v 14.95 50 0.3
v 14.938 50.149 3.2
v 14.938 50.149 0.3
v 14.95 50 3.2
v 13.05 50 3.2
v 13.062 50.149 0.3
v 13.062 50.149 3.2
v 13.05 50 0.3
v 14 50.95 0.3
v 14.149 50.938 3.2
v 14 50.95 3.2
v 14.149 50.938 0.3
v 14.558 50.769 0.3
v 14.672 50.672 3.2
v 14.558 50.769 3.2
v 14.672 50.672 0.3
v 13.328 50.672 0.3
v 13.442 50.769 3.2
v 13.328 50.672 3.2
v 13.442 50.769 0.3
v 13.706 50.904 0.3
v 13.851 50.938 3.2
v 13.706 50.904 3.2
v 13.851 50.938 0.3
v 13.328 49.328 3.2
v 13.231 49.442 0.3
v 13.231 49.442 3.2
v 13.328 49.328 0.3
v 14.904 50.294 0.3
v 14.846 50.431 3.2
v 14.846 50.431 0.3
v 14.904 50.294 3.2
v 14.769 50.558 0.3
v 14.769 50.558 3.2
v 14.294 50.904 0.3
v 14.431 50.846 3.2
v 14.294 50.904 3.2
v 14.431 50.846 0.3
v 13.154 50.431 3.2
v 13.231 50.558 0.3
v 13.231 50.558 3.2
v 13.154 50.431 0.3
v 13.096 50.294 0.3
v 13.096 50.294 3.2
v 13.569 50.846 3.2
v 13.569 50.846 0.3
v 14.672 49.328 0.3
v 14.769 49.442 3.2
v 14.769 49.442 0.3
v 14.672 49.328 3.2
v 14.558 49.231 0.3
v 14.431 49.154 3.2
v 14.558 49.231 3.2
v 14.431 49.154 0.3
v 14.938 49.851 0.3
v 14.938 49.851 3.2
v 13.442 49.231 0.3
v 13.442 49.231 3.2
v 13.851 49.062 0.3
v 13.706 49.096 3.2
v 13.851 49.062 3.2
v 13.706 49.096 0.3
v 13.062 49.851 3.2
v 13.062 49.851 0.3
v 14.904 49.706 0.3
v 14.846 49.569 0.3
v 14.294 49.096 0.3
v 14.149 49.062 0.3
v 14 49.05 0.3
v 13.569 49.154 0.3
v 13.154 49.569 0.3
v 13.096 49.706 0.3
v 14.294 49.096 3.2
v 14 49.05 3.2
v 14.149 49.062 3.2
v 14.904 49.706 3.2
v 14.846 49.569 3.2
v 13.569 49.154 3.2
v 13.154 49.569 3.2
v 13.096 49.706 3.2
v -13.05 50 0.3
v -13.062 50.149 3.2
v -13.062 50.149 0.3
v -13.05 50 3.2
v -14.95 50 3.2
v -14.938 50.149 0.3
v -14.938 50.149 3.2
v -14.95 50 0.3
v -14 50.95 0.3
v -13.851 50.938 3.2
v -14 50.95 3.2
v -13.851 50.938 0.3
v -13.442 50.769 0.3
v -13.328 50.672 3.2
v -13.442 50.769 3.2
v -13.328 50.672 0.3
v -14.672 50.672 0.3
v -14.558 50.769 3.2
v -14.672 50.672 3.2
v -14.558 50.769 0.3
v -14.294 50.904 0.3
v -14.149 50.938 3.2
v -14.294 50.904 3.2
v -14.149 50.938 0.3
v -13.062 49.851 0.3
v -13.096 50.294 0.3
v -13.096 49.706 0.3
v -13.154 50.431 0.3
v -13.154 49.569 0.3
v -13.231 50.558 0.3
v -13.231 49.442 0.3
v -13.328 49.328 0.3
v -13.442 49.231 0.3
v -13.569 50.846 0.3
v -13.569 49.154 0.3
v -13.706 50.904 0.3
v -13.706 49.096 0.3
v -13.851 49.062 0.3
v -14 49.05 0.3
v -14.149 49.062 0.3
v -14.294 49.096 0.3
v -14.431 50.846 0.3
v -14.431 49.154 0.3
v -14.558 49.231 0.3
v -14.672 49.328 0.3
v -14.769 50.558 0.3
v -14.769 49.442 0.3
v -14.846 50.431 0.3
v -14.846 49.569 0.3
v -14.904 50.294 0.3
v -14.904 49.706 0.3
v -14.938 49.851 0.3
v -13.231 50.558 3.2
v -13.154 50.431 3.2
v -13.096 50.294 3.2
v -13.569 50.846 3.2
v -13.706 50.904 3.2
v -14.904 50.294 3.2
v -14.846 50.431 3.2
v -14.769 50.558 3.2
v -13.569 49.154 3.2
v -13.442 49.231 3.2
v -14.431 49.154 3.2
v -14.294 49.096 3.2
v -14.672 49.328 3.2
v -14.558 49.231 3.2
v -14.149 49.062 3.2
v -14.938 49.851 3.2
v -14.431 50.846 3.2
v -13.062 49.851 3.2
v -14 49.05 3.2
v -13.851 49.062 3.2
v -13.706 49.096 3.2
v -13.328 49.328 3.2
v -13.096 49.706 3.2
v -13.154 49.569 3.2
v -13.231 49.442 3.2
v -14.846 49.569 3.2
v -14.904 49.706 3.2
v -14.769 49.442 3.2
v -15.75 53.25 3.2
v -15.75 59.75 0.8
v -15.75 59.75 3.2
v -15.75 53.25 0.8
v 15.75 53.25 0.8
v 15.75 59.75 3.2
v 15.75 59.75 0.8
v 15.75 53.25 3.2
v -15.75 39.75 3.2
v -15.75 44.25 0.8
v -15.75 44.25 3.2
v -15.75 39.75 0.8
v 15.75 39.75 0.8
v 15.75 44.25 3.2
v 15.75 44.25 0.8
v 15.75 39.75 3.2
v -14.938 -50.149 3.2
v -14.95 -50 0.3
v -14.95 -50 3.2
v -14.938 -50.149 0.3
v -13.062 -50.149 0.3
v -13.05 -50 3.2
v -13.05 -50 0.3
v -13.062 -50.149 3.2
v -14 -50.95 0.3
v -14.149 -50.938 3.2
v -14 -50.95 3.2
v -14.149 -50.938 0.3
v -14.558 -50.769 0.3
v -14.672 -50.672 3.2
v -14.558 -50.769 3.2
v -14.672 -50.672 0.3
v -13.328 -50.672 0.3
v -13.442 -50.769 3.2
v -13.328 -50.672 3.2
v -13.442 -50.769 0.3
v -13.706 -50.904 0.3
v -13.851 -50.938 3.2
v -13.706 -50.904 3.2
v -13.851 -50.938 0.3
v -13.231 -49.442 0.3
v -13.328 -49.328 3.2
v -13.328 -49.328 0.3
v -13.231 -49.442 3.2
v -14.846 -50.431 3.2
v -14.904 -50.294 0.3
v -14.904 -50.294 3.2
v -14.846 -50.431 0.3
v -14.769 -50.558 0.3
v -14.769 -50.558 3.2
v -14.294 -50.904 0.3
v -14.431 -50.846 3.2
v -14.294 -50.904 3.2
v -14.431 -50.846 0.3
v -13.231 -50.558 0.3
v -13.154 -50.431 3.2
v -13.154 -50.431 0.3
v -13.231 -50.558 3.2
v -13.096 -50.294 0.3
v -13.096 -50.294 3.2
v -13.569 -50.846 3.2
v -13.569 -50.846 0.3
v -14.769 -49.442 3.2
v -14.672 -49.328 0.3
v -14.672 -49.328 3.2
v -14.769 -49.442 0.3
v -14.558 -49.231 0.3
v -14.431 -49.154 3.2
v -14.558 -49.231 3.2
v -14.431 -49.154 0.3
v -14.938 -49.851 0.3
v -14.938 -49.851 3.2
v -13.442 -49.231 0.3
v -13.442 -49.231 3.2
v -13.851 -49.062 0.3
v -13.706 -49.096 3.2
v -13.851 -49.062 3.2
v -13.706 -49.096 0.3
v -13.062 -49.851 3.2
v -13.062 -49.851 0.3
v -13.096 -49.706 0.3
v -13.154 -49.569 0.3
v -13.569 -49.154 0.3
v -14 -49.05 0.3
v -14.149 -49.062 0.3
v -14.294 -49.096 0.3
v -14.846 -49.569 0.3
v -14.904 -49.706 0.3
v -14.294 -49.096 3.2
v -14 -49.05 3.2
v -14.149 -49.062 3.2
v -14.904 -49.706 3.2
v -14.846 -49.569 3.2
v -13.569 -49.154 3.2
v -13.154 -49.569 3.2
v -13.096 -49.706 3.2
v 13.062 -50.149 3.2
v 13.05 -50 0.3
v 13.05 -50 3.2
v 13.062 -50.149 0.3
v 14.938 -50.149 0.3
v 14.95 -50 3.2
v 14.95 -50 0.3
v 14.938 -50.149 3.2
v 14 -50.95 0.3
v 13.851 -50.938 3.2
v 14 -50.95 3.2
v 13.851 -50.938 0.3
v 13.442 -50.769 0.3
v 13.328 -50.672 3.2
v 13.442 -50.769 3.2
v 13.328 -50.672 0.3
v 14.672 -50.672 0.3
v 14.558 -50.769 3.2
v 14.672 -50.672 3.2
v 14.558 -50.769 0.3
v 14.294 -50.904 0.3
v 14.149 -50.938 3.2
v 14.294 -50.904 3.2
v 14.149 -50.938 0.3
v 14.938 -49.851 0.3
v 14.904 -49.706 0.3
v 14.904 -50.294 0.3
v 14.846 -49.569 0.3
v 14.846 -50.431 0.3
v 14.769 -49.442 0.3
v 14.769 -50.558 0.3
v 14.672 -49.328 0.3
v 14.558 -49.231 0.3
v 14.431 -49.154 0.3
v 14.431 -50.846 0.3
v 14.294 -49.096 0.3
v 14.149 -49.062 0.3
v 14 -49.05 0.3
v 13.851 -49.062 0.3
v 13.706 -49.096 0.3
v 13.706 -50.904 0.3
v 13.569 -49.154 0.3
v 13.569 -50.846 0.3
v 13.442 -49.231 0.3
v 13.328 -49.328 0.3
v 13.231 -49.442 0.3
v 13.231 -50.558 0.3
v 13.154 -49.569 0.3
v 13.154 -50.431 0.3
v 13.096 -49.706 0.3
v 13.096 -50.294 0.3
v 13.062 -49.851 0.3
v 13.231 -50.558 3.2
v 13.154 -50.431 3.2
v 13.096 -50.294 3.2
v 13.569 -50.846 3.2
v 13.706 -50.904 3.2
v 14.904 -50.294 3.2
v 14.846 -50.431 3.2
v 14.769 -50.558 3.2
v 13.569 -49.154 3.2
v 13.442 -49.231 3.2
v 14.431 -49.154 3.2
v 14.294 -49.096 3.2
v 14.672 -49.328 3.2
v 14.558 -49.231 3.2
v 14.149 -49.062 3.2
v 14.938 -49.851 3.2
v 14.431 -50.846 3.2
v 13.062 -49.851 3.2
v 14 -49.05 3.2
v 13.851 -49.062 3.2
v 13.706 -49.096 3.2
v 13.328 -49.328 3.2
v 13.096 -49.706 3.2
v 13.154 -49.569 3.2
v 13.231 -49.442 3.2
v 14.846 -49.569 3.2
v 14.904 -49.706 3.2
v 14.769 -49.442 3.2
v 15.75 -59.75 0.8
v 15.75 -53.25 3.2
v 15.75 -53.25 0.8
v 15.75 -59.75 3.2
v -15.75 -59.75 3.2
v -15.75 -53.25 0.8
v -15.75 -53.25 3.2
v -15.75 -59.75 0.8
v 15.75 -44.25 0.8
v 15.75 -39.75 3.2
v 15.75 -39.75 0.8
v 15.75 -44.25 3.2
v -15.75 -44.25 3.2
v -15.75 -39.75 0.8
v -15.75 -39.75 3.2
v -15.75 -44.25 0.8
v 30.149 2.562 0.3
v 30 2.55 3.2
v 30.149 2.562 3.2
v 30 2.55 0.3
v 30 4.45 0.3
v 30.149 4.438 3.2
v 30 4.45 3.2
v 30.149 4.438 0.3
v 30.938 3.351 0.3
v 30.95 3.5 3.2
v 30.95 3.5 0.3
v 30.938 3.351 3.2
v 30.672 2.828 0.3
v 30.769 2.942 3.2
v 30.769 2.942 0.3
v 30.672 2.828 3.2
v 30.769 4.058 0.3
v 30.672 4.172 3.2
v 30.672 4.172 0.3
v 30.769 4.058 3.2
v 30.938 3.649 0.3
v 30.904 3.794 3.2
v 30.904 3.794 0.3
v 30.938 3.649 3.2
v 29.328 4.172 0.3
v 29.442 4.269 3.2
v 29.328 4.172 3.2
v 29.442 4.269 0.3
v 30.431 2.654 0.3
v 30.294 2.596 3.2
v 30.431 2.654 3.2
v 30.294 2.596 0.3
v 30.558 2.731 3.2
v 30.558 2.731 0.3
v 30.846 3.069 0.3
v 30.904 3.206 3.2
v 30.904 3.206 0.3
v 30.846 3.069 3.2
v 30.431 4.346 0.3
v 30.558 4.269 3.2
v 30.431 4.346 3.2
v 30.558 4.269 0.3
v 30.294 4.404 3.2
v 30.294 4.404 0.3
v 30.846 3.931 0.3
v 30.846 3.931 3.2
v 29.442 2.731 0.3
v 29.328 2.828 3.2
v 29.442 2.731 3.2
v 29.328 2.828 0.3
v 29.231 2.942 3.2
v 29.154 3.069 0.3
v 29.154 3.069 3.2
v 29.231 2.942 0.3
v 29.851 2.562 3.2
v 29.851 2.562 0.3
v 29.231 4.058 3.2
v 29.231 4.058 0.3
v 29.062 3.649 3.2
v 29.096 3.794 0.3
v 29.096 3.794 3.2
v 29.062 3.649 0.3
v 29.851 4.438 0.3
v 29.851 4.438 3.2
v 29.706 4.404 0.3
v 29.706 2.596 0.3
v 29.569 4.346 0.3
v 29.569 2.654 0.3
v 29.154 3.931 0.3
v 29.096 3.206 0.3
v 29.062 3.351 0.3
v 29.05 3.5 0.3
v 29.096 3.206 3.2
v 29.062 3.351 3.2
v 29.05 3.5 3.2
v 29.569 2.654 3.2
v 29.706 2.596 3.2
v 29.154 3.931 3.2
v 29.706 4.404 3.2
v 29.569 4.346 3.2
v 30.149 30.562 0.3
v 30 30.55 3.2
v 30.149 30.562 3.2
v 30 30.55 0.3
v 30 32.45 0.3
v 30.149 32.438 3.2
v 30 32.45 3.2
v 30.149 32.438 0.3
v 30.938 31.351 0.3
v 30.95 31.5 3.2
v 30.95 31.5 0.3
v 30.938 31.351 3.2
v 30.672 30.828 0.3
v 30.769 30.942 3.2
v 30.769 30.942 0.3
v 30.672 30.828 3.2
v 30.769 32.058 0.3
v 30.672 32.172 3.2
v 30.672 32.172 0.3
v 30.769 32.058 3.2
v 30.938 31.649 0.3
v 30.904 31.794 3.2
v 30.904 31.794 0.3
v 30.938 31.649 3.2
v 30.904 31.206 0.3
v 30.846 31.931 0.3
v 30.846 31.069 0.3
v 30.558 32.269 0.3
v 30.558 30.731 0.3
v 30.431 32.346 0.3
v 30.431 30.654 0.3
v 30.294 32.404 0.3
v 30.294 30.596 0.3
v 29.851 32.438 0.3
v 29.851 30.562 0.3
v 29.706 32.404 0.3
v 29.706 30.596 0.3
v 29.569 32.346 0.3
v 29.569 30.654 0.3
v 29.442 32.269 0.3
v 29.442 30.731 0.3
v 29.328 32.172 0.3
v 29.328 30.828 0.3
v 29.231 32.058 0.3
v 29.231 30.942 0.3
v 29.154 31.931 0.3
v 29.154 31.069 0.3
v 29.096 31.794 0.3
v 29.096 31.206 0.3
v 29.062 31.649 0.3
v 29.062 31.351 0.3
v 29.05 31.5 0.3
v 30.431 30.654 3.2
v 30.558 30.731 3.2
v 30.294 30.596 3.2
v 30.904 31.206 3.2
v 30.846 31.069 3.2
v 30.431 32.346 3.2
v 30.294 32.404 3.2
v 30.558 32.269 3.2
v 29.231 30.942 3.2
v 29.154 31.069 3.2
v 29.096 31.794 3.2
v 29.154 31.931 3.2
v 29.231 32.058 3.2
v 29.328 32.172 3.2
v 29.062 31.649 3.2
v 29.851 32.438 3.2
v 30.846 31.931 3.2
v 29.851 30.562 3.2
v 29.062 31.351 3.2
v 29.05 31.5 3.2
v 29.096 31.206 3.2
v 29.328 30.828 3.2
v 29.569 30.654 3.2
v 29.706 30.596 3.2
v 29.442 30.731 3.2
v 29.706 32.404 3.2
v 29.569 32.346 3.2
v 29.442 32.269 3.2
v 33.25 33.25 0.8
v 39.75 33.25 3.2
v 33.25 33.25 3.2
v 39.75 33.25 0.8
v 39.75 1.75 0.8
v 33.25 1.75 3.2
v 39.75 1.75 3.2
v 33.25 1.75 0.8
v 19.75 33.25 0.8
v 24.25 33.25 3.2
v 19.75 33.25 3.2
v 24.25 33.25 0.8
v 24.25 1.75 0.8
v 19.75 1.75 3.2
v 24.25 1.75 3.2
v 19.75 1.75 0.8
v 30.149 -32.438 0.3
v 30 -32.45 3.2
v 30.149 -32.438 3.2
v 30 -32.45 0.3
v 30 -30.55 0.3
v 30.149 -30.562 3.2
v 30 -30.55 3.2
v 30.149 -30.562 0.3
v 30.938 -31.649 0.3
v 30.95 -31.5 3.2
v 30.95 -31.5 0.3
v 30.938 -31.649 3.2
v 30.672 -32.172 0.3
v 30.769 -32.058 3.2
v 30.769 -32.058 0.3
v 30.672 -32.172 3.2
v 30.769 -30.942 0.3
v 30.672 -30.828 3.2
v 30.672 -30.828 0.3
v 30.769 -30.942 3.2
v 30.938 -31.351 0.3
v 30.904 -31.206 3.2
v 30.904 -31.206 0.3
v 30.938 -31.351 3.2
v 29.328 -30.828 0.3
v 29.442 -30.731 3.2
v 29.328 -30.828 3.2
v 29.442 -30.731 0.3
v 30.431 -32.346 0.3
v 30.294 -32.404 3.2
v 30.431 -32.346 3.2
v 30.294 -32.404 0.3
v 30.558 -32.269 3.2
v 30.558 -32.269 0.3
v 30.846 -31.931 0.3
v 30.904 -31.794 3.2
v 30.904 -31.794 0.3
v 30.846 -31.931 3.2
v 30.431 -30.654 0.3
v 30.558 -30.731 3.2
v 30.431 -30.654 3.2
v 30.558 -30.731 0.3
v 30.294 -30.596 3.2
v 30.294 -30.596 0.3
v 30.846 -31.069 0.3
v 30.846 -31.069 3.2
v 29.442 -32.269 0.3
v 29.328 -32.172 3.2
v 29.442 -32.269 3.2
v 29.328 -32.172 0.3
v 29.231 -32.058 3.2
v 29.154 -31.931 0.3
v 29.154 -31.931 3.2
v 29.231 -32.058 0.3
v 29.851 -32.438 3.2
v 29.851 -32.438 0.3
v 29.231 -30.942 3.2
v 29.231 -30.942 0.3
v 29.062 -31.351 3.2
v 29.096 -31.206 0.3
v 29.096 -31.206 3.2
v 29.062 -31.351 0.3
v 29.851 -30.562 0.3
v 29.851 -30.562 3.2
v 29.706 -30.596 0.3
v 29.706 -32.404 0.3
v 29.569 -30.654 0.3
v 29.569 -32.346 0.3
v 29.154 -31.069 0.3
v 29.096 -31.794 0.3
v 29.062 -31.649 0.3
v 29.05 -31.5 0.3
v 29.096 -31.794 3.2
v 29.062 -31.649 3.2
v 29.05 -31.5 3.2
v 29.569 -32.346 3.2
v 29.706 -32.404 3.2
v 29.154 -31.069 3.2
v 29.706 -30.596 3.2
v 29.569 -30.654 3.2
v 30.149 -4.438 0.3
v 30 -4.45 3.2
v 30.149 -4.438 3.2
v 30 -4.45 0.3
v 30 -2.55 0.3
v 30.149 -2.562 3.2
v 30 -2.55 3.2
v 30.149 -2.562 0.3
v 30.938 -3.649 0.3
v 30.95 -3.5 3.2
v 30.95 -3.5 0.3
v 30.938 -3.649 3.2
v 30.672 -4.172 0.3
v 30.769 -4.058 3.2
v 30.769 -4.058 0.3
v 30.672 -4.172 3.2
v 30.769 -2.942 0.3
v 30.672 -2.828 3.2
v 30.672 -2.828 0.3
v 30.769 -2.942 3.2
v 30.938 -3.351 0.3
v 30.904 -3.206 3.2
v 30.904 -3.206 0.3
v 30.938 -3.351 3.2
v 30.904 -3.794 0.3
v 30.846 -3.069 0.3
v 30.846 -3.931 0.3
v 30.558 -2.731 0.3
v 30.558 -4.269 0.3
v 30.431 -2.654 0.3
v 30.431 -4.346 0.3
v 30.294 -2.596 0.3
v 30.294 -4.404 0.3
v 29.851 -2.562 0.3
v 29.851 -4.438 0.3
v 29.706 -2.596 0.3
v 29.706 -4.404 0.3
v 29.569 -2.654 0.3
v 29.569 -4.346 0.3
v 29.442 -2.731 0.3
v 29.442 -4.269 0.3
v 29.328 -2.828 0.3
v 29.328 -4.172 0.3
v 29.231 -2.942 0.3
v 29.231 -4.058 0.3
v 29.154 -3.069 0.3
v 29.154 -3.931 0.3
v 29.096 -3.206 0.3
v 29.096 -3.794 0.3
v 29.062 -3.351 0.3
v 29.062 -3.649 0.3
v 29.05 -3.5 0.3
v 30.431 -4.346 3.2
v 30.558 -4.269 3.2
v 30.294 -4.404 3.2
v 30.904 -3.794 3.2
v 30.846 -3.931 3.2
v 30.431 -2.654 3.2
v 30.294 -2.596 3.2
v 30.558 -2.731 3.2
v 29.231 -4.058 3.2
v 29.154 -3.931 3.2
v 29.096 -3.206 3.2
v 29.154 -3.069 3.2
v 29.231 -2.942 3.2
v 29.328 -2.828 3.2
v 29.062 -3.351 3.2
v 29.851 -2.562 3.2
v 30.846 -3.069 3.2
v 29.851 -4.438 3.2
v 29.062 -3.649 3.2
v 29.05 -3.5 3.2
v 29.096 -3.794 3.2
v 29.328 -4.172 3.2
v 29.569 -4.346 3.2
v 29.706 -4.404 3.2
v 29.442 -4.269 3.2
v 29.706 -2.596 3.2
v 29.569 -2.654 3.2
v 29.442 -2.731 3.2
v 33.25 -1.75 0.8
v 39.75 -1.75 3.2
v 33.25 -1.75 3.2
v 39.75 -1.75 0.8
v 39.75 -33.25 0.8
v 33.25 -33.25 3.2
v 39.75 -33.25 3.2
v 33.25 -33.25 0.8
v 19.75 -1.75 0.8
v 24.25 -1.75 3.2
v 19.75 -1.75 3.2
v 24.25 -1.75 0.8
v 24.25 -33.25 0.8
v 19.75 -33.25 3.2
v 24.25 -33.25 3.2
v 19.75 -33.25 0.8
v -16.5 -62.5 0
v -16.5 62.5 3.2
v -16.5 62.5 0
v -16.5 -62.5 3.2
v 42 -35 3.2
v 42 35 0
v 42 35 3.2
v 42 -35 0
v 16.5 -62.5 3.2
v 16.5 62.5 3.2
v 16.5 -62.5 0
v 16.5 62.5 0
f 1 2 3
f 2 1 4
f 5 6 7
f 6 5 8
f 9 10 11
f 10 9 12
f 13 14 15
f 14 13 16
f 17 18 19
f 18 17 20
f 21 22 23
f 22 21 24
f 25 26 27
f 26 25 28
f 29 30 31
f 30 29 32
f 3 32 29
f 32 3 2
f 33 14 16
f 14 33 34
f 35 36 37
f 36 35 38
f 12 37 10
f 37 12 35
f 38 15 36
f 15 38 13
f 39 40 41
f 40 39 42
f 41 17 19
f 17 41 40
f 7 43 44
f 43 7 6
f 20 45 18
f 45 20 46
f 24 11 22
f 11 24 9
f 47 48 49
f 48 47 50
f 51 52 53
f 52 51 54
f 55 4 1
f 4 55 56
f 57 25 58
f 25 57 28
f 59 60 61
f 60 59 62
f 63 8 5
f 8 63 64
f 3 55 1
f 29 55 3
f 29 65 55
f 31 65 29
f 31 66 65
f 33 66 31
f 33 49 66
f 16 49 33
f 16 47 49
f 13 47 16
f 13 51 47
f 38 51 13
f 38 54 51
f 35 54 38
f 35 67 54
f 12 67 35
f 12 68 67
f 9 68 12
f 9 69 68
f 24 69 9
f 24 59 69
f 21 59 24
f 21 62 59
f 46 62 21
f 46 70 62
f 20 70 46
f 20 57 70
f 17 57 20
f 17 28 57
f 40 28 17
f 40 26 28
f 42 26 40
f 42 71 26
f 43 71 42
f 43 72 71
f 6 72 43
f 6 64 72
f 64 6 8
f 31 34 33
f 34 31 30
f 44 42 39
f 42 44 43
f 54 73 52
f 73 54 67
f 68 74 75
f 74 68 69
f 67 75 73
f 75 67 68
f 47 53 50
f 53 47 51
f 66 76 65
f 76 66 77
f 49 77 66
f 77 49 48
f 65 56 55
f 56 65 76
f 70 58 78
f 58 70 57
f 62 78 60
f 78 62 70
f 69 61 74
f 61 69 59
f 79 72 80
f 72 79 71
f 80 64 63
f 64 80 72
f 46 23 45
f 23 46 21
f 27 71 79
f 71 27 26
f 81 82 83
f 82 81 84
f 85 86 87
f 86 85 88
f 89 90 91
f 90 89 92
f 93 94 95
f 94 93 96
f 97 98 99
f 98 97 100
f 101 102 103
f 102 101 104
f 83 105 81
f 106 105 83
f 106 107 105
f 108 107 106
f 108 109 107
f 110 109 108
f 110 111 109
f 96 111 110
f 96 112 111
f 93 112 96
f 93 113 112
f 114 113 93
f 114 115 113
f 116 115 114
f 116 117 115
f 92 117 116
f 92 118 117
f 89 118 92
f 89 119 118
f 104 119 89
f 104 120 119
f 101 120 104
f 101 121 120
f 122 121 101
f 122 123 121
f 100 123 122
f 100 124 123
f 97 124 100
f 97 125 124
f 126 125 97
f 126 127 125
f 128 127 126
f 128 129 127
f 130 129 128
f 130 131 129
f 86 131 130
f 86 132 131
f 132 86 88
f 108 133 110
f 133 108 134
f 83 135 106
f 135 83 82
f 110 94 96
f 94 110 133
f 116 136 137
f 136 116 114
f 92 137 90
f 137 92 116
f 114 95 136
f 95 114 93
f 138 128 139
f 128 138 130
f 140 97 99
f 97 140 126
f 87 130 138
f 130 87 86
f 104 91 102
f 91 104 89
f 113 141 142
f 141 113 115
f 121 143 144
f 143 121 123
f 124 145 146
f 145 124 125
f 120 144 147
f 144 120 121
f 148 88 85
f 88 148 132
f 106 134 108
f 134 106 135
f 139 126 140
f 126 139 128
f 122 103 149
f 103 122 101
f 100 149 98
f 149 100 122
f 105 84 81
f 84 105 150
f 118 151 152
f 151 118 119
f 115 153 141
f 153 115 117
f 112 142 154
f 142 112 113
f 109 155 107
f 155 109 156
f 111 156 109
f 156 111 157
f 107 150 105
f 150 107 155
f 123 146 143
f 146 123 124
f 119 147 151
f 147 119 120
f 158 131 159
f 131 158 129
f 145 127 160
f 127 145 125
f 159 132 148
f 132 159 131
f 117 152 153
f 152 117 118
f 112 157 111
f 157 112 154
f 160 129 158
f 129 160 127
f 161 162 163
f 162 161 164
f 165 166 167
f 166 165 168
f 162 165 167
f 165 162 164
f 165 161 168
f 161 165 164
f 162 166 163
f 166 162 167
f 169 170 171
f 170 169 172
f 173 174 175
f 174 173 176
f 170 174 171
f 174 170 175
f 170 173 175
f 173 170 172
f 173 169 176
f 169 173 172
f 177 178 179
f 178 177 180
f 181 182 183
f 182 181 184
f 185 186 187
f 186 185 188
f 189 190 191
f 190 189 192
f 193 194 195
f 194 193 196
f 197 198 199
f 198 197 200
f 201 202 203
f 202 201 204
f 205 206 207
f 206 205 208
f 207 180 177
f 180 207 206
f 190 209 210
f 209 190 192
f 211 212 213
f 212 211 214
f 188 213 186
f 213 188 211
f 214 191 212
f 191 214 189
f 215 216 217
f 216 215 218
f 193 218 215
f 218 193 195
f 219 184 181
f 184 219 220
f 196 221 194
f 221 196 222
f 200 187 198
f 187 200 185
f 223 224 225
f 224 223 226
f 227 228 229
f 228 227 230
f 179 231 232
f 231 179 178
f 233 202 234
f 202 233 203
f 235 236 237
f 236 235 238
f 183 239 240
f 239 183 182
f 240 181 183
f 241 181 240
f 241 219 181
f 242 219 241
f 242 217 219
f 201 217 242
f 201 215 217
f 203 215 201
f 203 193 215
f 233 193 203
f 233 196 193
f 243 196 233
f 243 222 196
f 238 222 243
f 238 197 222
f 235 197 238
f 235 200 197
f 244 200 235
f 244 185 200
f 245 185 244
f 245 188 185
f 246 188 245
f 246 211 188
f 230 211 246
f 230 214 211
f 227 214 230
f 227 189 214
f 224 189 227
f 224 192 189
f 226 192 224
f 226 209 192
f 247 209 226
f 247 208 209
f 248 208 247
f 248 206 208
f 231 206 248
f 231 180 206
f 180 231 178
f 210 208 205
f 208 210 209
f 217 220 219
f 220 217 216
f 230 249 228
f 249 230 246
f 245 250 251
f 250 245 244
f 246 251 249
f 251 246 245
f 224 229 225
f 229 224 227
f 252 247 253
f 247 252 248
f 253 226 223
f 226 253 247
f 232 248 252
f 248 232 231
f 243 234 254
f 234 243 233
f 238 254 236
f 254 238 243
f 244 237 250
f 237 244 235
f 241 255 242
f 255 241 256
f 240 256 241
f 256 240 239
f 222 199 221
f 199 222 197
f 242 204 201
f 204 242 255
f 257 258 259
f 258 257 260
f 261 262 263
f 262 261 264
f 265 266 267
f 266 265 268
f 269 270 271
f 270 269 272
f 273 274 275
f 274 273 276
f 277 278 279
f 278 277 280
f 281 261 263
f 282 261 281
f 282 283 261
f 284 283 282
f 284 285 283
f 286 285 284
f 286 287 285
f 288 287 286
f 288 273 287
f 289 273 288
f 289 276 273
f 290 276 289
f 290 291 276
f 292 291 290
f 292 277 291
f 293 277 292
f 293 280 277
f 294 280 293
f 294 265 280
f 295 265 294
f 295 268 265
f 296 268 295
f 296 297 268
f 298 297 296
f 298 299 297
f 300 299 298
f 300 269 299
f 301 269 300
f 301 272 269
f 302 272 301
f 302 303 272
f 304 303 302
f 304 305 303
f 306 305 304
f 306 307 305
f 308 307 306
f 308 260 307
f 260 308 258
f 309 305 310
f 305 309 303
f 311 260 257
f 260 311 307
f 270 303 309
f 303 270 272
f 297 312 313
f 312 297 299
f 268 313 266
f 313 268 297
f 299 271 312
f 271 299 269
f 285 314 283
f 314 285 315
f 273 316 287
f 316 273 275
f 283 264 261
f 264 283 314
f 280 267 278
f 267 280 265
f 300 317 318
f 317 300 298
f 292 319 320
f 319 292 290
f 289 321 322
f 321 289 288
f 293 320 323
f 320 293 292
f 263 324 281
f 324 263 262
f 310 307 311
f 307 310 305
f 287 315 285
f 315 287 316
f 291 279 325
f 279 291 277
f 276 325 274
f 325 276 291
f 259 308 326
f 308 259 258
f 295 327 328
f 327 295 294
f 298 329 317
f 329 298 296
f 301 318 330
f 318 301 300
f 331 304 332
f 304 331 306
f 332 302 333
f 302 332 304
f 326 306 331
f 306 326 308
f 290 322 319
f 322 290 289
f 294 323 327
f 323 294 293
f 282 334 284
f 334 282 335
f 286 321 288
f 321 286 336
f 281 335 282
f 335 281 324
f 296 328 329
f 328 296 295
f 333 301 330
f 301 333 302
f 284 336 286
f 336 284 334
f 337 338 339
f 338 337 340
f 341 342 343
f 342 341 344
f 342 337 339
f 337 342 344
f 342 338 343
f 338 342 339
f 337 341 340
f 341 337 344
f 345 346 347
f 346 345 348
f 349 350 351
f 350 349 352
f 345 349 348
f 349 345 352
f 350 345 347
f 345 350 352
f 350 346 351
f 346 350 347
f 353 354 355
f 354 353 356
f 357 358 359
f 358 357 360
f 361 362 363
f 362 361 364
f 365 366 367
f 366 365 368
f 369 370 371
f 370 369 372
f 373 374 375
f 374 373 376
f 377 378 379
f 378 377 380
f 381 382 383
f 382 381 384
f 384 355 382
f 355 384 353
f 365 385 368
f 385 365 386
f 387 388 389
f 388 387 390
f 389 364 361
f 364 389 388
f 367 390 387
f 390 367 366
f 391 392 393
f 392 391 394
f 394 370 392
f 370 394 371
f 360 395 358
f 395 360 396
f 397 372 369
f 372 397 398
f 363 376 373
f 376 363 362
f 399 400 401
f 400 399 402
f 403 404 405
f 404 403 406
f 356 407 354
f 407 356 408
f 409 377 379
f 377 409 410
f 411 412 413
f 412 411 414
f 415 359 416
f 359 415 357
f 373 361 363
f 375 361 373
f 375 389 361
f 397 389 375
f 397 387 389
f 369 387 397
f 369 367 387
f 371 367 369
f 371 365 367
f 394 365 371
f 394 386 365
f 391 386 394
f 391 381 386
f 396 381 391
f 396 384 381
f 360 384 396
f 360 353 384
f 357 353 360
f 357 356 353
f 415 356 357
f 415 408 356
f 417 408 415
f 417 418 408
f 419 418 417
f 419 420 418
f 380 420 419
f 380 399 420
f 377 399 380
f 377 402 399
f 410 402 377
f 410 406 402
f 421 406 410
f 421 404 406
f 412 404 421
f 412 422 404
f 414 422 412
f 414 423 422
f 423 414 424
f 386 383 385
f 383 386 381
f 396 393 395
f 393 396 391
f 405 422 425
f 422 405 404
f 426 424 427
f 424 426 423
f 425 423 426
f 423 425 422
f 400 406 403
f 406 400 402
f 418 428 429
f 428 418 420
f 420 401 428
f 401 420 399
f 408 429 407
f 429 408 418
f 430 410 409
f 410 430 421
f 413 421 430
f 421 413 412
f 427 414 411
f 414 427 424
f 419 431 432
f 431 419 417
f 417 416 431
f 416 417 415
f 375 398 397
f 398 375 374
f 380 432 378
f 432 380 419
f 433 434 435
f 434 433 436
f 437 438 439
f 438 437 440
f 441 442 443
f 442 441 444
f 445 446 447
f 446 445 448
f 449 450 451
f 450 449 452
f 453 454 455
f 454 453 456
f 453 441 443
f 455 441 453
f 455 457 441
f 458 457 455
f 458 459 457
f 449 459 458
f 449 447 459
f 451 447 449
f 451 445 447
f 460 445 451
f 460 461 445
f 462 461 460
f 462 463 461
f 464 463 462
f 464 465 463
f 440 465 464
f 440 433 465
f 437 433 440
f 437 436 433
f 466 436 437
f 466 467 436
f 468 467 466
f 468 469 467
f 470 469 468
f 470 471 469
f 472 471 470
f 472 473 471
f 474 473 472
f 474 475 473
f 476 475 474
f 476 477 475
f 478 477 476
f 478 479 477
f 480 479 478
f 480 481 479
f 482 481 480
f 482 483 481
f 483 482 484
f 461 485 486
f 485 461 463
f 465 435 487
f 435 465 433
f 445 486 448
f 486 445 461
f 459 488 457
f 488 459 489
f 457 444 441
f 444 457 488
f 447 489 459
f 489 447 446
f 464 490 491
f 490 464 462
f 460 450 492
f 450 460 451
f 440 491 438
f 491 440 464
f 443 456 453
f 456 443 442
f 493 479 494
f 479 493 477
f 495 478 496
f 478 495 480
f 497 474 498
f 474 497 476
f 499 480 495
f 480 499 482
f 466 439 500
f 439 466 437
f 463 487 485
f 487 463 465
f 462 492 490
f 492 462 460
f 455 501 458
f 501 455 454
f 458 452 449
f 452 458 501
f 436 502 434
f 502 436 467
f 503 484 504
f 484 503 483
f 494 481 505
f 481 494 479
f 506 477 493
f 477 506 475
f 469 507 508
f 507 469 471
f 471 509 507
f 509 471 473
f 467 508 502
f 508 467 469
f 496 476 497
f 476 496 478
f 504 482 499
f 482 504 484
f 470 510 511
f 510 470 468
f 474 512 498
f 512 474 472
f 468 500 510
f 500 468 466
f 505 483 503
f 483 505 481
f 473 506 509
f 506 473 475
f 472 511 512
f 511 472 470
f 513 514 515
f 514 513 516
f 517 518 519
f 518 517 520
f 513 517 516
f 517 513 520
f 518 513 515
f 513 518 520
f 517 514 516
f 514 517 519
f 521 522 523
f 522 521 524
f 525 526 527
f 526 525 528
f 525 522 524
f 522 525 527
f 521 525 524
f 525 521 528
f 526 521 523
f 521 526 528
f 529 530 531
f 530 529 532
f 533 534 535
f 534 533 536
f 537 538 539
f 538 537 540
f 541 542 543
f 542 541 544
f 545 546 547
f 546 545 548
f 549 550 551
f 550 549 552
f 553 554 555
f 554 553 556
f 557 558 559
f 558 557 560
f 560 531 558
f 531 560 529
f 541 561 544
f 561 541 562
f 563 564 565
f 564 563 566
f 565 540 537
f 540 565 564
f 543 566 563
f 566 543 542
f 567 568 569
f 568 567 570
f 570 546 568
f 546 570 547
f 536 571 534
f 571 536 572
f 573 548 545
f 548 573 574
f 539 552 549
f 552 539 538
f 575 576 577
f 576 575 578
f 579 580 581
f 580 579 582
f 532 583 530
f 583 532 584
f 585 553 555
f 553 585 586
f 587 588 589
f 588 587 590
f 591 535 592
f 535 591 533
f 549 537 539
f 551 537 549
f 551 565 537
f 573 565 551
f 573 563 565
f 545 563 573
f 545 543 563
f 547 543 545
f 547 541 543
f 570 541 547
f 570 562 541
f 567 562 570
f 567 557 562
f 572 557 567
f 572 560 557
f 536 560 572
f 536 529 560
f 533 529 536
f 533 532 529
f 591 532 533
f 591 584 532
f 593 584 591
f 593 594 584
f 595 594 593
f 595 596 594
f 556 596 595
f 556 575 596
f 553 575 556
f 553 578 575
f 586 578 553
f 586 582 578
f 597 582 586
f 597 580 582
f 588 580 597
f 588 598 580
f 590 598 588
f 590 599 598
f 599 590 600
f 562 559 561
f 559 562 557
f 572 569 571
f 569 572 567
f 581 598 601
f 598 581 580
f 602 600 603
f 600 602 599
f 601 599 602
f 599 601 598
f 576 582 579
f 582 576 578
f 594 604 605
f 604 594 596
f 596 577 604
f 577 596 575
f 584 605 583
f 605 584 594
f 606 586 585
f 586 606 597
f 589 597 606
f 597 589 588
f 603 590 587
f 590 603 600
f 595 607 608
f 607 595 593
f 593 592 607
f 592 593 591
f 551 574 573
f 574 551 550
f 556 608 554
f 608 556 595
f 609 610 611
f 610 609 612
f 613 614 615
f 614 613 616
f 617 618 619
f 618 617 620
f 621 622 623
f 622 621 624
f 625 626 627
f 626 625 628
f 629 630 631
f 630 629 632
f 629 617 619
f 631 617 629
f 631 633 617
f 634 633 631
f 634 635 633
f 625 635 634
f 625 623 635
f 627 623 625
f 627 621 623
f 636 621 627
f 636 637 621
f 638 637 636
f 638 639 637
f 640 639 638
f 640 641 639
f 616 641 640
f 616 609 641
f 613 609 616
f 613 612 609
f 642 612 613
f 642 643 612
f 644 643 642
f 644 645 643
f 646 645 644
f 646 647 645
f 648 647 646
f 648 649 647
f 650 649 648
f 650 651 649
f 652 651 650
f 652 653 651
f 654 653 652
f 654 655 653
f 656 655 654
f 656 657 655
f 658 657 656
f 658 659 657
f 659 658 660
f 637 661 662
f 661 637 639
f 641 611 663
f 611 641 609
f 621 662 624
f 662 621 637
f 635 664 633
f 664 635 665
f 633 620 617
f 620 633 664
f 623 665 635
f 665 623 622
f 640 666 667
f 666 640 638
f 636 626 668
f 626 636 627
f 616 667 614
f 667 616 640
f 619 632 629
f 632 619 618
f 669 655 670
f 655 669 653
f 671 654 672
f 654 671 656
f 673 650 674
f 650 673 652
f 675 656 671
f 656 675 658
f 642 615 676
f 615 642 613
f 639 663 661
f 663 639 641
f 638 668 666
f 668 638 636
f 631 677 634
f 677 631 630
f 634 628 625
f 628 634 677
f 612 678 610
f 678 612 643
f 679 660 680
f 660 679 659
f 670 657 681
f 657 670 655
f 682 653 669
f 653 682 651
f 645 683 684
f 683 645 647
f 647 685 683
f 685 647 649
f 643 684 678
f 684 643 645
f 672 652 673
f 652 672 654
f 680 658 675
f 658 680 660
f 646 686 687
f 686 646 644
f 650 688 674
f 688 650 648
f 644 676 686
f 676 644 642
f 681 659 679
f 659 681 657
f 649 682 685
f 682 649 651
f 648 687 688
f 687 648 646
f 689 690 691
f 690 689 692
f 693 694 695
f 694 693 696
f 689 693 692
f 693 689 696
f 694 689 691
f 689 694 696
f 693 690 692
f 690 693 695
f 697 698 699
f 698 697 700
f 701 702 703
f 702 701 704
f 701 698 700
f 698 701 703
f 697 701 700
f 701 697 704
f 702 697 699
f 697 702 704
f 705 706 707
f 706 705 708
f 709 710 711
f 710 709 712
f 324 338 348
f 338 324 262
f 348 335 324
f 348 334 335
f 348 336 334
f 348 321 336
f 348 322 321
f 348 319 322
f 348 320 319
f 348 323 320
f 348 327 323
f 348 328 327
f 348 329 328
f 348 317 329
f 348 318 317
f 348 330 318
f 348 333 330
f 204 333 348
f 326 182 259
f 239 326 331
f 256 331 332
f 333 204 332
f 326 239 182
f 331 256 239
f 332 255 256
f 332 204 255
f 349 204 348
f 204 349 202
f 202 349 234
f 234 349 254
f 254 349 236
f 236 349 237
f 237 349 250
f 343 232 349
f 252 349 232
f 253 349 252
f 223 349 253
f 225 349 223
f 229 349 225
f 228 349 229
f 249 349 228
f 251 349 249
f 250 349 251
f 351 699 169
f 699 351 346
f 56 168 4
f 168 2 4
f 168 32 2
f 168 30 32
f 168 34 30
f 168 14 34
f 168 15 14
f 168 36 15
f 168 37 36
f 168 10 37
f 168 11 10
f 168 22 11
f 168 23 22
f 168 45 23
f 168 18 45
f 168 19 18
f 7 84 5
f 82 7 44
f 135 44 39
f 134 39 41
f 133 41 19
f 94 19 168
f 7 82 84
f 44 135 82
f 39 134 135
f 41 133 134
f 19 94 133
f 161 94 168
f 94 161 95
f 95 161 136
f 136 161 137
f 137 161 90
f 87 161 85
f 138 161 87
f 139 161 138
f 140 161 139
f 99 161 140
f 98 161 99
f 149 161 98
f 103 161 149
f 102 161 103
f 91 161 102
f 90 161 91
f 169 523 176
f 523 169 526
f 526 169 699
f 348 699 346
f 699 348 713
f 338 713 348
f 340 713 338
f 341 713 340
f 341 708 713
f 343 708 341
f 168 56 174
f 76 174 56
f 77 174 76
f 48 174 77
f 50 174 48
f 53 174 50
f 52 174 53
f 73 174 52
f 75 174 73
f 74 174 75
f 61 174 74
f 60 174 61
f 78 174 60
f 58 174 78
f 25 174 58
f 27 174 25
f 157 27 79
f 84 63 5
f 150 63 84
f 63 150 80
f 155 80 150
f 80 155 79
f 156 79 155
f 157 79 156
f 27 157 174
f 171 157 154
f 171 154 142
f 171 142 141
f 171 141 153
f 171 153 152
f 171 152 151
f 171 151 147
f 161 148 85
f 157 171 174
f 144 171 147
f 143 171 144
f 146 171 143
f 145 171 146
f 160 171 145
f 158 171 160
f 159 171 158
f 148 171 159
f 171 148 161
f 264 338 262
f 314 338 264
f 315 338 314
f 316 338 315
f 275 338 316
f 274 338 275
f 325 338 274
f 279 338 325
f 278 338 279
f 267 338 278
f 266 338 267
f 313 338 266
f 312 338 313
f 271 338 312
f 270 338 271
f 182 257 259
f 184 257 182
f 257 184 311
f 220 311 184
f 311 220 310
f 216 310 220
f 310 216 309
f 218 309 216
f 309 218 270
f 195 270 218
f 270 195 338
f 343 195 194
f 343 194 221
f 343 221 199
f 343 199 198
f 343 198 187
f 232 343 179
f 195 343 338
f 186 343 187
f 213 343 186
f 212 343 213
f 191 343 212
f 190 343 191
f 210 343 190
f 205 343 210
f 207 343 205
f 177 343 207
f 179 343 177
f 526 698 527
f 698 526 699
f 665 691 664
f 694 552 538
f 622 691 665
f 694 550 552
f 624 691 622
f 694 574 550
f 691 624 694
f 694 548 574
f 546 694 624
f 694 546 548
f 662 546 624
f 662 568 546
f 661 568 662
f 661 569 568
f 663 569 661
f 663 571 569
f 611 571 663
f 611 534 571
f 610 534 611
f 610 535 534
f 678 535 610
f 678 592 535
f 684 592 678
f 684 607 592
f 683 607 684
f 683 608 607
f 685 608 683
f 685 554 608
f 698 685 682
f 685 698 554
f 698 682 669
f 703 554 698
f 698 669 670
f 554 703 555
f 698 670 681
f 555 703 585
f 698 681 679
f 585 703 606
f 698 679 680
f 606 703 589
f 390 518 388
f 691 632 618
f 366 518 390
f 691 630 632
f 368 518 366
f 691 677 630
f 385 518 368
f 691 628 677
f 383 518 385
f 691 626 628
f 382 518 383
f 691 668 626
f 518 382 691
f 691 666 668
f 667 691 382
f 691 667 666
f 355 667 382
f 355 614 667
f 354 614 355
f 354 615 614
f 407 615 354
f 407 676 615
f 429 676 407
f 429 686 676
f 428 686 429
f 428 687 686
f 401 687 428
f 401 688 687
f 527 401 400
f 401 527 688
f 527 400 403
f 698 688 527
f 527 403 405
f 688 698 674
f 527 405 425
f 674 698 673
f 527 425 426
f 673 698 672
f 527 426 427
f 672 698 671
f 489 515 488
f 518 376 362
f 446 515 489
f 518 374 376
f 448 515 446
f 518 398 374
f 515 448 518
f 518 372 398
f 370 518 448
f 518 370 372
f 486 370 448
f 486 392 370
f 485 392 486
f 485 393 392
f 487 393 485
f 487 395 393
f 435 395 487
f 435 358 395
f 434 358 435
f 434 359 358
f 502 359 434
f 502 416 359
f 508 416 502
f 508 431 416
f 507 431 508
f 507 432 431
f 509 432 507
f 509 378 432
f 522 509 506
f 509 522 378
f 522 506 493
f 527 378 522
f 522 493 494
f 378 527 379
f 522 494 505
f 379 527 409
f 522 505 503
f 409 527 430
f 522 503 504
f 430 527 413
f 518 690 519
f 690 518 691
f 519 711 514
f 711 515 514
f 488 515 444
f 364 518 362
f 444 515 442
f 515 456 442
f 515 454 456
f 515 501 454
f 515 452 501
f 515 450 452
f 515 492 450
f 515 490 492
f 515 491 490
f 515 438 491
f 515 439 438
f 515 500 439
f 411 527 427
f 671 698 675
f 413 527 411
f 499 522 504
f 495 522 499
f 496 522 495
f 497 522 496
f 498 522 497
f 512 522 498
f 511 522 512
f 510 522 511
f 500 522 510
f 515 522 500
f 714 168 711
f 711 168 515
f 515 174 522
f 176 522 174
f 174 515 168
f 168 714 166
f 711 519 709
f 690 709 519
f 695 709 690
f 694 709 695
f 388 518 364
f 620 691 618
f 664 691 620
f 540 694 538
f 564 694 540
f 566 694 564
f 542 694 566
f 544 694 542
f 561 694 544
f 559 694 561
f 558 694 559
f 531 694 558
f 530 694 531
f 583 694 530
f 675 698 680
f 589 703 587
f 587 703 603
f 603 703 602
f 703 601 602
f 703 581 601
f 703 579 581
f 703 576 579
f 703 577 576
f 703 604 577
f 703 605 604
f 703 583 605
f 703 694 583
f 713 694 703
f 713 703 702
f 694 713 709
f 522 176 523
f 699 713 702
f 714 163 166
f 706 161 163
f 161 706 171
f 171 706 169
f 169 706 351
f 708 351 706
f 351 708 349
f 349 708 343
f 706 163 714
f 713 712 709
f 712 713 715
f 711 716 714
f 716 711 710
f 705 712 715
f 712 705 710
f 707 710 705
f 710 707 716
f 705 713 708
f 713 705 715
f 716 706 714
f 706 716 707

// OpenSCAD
// RS232 Sniffer (Brian Khuu) (Created On 2022-08-16)
//
// This arranges 4 RS232 screw terminal breakout boards so you can wire up a sniffer for reverse engineering purpose
// You may need to adapt the screw holes and the solder pits to match your breakout

$fn = 40;

screwDia = 1.9;
screwDepth = 3.0;
thicknessBase = 3.2;
solderDepth = 2.5;

module serialScrew()
{
    screwSpacing = 28;
    translate([+screwSpacing/2, 0,thicknessBase/2-screwDepth/2+0.1])
        cylinder(d=screwDia, h=screwDepth, center=true);
    translate([-screwSpacing/2, 0,thicknessBase/2-screwDepth/2+0.1])
        cylinder(d=screwDia, h=screwDepth, center=true);
    

    translate([0,6.5,thicknessBase/2-solderDepth/2+0.1])
        cube([31.5, 6.5, solderDepth], center=true);
    translate([0,-8,thicknessBase/2-solderDepth/2+0.1])
        cube([31.5, 4.5, solderDepth], center=true);
    
    if(0)
    %translate([0,0,thicknessBase])
        cube([33, 25, 1], center=true);
}

translate([0, 0, thicknessBase/2])
difference()
{
    hull()
    {
        cube([33, 125, thicknessBase], center=true);
        translate([33,0,0])
            cube([18, 70, thicknessBase], center=true);
    }
    
    translate([0, +100/2, 0])
        serialScrew();
    translate([0, -100/2, 0])
        rotate([0,0,-180])
        serialScrew();

    translate([30, +35/2, 0])
        rotate([0,0,-90])
            serialScrew();
    translate([30, -35/2, 0])
        rotate([0,0,-90])
            serialScrew();
}
